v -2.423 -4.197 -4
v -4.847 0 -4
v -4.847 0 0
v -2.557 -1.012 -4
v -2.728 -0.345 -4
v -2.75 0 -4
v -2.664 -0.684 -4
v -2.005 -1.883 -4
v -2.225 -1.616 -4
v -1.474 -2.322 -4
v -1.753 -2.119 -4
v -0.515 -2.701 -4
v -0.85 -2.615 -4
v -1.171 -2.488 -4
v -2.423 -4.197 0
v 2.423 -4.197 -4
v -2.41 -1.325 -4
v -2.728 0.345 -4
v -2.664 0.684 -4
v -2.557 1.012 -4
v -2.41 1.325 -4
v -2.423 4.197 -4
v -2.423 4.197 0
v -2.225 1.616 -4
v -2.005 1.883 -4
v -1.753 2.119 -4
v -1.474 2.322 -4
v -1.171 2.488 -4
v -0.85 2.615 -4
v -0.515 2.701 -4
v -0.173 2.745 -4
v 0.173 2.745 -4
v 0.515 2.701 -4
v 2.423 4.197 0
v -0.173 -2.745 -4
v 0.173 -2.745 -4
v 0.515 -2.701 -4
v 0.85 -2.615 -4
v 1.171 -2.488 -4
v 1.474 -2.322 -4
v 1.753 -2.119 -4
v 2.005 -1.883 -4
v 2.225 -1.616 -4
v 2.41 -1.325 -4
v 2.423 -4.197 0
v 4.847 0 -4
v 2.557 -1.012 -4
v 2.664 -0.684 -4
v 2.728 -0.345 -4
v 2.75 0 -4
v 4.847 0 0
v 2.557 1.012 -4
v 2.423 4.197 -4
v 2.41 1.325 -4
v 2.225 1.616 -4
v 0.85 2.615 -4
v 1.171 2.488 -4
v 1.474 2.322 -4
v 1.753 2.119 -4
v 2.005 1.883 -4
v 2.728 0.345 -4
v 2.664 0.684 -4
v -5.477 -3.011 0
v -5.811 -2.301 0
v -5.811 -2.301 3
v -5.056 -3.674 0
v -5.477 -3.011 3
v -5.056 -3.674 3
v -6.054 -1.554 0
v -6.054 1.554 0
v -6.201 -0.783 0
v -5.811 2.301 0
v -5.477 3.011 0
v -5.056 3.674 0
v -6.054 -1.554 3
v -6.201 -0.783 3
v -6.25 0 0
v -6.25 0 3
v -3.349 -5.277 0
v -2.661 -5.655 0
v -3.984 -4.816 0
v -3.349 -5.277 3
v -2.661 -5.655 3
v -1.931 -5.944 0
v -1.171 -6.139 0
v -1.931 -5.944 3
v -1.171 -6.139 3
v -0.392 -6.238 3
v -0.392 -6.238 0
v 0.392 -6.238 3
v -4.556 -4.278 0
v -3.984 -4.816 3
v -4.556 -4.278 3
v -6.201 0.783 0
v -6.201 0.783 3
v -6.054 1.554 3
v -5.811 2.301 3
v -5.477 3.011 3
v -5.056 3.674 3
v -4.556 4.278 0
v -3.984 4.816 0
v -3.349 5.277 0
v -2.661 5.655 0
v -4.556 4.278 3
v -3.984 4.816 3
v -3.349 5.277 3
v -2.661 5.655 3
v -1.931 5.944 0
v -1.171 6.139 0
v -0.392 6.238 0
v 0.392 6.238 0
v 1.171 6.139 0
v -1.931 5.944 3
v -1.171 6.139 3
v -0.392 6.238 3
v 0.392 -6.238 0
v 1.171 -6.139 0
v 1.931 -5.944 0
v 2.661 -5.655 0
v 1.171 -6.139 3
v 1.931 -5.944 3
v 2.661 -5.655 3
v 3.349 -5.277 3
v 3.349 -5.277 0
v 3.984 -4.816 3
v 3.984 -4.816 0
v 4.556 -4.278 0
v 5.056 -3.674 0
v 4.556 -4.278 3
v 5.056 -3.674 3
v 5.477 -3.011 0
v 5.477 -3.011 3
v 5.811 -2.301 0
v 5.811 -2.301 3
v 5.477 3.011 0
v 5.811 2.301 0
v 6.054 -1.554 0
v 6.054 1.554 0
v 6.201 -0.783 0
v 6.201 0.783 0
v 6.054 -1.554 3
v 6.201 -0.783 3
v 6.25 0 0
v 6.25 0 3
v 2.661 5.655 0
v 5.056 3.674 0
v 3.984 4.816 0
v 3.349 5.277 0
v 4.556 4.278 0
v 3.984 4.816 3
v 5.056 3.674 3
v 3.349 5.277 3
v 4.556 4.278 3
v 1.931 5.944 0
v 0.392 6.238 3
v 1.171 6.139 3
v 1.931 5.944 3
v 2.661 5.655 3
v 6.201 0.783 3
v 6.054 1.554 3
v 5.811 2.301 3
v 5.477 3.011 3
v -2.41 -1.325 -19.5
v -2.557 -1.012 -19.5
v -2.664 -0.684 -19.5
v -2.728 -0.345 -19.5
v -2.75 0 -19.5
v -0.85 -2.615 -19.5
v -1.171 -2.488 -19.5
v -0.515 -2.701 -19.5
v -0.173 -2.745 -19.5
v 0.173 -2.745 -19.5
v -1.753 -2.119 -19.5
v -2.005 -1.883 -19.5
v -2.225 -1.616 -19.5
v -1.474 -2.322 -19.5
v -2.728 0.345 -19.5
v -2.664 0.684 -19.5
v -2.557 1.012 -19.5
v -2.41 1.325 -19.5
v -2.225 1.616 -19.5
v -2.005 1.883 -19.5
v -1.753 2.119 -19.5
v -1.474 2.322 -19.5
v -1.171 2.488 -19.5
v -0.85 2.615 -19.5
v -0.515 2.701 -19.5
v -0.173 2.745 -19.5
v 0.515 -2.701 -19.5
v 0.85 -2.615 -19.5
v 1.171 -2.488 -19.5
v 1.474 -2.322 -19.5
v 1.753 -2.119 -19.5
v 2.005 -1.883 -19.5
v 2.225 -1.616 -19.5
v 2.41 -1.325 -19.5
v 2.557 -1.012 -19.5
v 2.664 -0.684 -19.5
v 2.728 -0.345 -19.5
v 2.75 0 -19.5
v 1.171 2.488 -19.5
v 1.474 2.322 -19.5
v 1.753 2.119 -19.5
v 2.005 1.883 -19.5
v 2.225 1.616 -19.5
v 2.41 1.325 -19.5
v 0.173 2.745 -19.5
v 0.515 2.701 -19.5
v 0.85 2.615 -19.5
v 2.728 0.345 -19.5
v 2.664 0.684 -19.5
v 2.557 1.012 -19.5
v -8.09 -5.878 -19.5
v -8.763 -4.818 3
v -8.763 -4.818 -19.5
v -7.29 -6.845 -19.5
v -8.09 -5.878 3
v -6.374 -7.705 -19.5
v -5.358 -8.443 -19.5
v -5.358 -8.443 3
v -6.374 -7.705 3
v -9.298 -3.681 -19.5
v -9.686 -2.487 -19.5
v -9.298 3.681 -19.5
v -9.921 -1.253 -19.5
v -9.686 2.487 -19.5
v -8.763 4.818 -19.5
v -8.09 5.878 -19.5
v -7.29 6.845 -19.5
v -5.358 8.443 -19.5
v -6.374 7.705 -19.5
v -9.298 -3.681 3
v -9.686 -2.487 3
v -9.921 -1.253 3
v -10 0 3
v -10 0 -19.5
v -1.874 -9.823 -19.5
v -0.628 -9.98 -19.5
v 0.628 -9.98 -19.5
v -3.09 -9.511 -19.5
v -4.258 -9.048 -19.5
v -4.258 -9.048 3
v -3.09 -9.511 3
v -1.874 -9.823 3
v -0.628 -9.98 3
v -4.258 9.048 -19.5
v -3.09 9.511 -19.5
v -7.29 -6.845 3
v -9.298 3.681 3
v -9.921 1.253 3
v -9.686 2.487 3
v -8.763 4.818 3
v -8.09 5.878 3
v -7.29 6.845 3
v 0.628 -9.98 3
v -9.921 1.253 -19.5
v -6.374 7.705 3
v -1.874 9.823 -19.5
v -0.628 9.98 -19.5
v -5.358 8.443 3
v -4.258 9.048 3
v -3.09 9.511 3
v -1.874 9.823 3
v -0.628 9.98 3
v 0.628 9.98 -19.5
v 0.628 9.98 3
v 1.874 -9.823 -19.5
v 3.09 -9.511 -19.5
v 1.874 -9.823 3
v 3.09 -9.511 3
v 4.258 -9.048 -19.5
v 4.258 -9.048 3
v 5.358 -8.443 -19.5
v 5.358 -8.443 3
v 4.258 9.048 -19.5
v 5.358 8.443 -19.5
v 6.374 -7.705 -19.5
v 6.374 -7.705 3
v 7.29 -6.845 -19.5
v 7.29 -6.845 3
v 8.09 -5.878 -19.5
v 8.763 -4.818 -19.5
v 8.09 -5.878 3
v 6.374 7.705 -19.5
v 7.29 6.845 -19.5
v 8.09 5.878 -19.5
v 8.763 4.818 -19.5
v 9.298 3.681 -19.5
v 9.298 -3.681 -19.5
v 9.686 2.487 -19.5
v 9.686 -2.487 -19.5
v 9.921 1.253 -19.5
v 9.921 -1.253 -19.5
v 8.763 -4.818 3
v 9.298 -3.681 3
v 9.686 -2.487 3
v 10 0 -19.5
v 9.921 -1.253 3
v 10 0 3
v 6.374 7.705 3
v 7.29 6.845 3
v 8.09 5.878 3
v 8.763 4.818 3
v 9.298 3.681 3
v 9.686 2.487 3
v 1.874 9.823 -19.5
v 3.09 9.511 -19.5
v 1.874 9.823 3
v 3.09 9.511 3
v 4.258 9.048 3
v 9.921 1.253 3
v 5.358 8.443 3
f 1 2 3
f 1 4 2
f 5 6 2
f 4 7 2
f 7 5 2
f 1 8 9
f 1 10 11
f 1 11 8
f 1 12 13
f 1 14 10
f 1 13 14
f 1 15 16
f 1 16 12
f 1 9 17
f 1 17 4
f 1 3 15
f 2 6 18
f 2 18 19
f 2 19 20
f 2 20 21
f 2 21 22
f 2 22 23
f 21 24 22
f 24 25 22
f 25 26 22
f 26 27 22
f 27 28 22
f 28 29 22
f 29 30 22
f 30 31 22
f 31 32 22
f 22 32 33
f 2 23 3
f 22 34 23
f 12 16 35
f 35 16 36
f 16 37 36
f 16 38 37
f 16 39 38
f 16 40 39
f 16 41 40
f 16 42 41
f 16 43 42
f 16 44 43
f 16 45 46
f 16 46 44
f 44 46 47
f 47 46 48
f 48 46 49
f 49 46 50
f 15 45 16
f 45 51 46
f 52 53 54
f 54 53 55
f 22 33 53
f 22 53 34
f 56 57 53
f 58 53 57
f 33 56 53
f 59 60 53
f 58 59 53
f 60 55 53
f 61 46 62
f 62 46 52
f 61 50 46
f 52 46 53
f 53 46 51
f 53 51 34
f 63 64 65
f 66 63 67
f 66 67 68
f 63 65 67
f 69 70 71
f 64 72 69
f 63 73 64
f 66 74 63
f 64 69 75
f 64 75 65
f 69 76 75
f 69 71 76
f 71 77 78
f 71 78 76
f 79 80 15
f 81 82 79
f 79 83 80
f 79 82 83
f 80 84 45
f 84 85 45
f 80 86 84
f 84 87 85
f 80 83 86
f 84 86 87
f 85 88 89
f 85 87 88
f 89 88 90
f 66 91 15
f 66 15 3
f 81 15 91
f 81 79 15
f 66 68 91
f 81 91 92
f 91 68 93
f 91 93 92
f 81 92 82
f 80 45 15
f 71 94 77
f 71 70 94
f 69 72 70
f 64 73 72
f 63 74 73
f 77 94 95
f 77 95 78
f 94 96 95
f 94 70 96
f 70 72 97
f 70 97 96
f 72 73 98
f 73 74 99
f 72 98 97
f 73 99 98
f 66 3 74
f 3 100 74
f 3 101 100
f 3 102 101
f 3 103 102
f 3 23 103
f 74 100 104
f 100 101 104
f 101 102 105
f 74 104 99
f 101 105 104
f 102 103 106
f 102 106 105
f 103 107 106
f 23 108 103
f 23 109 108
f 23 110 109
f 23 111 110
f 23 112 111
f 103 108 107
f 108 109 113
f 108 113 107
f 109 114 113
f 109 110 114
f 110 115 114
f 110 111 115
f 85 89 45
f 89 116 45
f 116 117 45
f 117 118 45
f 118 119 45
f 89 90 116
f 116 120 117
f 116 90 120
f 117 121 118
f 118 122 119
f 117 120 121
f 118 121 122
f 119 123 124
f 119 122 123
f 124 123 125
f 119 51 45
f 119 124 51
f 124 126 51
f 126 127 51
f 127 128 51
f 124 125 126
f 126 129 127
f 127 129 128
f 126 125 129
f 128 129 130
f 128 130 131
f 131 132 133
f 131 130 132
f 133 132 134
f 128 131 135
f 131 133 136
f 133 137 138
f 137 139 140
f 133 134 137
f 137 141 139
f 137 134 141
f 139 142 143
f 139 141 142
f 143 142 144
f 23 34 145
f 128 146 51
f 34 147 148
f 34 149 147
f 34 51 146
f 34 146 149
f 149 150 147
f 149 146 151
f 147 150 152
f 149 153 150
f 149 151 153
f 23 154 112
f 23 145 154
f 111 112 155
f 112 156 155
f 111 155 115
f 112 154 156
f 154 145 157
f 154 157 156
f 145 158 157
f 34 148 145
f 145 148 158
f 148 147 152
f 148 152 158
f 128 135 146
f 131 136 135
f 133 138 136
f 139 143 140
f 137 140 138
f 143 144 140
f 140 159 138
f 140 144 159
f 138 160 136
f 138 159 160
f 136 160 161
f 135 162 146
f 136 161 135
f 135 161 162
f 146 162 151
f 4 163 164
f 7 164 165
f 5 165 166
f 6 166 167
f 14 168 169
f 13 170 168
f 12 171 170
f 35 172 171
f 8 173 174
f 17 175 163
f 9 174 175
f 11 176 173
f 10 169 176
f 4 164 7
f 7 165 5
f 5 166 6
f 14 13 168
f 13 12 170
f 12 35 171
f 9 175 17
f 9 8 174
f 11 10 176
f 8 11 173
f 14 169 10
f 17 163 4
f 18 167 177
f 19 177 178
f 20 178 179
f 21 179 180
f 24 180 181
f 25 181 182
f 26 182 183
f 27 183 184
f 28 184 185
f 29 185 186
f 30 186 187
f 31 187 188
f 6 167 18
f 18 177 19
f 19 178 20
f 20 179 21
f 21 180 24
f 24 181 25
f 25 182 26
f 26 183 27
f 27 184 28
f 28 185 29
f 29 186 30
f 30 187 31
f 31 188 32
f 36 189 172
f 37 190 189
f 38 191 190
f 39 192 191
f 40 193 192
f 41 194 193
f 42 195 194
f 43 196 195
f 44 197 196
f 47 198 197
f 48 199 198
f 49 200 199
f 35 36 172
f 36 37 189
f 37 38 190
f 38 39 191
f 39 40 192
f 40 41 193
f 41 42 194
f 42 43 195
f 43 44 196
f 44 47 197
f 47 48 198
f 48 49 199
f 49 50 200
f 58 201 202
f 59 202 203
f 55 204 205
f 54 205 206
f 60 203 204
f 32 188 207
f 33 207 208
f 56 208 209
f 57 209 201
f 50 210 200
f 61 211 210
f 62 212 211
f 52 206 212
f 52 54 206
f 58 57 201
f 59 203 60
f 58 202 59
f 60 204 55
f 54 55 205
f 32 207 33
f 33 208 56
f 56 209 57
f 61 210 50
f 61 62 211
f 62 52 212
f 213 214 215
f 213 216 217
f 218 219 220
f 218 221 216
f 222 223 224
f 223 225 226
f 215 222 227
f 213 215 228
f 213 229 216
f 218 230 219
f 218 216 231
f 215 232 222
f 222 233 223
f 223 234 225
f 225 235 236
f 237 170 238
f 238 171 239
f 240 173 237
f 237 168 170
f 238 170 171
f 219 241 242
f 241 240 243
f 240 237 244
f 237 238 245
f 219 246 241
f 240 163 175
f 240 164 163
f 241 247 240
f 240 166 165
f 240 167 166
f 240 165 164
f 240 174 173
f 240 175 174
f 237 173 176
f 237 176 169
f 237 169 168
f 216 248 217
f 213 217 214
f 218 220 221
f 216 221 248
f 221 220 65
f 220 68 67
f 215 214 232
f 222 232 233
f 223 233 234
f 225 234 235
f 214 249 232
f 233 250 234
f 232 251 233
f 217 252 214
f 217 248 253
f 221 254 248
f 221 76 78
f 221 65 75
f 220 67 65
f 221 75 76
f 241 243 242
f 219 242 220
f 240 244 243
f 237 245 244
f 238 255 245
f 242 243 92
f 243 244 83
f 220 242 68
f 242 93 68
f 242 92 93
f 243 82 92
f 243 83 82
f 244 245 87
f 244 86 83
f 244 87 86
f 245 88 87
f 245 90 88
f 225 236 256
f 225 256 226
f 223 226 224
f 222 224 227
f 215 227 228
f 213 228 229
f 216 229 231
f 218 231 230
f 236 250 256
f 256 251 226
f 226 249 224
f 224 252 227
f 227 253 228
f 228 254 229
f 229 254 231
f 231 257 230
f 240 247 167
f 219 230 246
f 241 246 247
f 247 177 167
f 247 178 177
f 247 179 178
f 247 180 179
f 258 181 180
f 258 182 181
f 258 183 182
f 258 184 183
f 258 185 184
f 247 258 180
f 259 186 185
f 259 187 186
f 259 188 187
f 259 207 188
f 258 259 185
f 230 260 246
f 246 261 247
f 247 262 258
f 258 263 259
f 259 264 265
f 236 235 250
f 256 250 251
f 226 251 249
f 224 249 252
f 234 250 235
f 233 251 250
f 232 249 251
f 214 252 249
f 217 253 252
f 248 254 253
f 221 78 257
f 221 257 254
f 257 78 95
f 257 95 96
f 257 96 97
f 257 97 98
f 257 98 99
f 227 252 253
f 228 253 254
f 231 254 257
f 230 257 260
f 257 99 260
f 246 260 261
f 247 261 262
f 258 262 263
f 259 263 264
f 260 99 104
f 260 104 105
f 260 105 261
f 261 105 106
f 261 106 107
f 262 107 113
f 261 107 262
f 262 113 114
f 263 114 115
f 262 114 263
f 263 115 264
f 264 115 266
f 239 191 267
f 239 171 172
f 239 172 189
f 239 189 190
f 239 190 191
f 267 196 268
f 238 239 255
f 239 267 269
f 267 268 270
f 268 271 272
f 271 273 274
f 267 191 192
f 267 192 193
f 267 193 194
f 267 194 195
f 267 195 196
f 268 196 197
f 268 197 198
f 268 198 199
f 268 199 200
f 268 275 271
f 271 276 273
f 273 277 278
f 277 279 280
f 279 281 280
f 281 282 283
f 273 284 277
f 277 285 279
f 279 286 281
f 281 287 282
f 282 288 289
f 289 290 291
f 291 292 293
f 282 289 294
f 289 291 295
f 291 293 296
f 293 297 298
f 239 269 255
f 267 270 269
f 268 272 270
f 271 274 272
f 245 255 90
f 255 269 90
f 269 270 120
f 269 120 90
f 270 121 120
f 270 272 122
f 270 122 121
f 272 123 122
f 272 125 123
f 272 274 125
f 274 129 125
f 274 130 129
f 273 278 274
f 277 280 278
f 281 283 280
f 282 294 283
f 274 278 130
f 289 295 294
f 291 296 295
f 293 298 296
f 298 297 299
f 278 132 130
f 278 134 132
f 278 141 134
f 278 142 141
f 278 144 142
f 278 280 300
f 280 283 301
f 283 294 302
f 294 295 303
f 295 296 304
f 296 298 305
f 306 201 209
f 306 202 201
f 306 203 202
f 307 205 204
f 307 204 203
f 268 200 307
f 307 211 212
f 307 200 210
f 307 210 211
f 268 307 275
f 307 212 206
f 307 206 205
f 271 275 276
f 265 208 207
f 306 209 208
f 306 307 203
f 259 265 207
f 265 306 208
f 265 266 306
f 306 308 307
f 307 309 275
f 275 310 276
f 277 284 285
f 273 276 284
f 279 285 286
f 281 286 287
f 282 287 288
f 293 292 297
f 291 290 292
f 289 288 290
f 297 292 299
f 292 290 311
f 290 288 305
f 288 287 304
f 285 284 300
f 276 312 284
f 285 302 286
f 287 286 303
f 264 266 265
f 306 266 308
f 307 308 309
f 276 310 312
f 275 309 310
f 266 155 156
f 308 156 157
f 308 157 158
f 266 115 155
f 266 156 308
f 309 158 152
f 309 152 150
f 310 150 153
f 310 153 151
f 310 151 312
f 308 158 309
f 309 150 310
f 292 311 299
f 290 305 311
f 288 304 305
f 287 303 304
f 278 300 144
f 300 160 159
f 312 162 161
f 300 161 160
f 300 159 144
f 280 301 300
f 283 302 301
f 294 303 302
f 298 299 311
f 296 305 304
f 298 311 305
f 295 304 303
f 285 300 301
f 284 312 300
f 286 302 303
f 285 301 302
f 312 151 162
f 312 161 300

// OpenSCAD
$fn = 50;

difference() {
	union() {
		translate(v = [0, 0, -19.5]) {
			cylinder(h = 22.5, r = 10.0);
		}
	}
	union() {
		translate(v = [0, 0, 0]) {
			rotate(a = [0, 0, 0]) {
				difference() {
					union() {
						translate(v = [0, 0, -4]) {
							linear_extrude(height = 4) {
								polygon(points = [[4.8468, 0.0], [2.4234000000000004, 4.197451927062417], [-2.423399999999999, 4.197451927062417], [-4.8468, 5.935618106107392e-16], [-2.423400000000002, -4.197451927062416], [2.423399999999997, -4.197451927062419]]);
							}
						}
					}
					union();
				}
			}
		}
		#cylinder(h = 3, r = 6.25);
		#translate(v = [0, 0, -100.0]) {
			cylinder(h = 200, r = 2.75);
		}
	}
}
